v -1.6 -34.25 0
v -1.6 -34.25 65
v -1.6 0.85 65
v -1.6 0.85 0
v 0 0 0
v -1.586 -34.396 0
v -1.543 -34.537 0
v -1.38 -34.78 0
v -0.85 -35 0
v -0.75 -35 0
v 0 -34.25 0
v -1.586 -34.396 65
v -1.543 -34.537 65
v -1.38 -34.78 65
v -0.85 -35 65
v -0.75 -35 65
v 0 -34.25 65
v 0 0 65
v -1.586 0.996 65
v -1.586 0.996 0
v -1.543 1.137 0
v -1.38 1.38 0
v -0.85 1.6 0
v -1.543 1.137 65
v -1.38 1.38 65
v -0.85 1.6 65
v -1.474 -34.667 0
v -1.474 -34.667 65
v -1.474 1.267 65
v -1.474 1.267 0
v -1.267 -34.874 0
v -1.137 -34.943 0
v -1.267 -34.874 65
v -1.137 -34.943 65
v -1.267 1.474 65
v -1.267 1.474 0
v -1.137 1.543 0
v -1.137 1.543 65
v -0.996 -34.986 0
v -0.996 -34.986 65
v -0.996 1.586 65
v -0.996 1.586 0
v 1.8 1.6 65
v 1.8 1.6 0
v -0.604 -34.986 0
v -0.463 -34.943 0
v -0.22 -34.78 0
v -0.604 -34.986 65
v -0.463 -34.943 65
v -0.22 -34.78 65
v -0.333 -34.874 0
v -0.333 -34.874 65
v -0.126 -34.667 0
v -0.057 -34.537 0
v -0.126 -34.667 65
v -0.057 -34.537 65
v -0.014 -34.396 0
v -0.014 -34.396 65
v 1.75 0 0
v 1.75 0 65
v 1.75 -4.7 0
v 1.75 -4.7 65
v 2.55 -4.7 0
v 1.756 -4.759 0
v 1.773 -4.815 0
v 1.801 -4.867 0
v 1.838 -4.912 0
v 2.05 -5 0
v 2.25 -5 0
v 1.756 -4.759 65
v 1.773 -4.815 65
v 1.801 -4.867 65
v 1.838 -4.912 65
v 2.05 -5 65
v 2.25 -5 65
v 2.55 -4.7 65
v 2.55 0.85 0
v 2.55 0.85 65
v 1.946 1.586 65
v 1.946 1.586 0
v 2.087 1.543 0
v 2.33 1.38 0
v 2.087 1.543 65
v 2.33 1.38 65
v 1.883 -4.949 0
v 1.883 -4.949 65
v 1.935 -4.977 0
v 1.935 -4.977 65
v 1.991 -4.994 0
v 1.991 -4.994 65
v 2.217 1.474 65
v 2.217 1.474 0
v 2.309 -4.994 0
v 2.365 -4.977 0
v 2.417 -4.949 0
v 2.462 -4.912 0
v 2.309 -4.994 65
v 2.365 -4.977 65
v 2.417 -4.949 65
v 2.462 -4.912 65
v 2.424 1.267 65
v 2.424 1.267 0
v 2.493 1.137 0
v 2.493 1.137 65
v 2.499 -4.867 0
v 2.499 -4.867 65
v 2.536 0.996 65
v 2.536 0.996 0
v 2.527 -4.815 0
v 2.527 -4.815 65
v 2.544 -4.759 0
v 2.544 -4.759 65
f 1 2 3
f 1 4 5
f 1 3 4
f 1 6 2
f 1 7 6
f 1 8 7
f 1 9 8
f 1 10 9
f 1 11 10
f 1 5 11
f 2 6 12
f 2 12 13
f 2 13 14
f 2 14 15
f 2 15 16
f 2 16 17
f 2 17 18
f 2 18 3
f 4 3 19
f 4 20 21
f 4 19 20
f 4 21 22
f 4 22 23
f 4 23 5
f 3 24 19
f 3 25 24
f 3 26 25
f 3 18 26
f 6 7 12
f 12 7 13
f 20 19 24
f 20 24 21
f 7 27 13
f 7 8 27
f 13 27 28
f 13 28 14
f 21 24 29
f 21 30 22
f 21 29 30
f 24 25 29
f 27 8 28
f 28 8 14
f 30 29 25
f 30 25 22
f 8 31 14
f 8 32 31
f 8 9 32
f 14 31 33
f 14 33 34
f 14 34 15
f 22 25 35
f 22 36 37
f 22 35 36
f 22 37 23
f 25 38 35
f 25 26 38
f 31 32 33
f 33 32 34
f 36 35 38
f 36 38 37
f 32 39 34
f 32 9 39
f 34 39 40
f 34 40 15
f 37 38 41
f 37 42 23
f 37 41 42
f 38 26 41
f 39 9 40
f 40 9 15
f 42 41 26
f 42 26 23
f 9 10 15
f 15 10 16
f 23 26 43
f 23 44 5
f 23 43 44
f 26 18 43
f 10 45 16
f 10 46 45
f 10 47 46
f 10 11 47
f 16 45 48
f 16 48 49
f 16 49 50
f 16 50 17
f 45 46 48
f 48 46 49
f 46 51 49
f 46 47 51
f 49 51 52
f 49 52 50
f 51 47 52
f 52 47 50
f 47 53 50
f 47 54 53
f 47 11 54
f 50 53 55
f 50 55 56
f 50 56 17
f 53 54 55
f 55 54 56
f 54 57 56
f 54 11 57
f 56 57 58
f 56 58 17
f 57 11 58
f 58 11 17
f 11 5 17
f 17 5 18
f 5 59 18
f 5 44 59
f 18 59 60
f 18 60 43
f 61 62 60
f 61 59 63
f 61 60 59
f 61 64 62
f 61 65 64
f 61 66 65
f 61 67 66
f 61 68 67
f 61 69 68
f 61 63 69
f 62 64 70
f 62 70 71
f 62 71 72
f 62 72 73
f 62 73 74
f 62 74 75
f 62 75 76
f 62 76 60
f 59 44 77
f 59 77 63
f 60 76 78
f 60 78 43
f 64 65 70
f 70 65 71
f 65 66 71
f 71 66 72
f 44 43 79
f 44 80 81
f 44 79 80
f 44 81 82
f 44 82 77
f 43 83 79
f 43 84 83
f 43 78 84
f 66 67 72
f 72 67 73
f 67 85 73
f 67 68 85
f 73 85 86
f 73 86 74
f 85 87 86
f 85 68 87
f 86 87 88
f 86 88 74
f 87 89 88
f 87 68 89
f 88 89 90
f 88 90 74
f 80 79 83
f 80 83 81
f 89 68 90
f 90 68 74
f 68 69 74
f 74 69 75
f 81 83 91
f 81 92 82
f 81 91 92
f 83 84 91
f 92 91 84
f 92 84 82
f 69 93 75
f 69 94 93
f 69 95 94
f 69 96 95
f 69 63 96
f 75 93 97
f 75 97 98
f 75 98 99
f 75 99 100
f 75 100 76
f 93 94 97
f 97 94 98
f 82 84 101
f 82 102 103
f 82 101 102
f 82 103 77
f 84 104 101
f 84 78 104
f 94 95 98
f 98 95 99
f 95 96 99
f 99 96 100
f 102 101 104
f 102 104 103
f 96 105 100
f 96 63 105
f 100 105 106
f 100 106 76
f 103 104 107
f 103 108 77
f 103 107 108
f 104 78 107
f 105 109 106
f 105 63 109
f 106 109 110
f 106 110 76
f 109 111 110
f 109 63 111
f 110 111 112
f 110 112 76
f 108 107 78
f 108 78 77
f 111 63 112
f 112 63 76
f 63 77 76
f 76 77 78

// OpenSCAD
$fn = 64;   // finer display resolution

// Door Protective Sleeve
// Stage 2: finished 65 mm sleeve (the default).  The cross-section
// passed a physical fit test as a 15 mm specimen and is unchanged.
//
// This file is the source of truth: opening it shows the current
// approved design.  See HEIGHT for the 15 mm test configuration.

// ============================================================
// LAYOUT
//
// The sleeve is one (X, Y) cross-section extruded straight up Z,
// so it prints with the profile flat on the build plate and every
// wall thickness - in particular the 0.8 mm tongue - is laid down
// in XY, where the printer is most accurate.
//
// Coordinates of the cross-section:
//   X = across the aluminum, from the hand side toward the lock
//   Y = along the aluminum face, toward the edge
//   Z = along the door edge (sleeve height)
//
// The slot's inner wall on the hand side is X = 0, and the slot
// bottom - where the bridge sits on the aluminum edge - is Y = 0.
// Both legs hang down into -Y from the bridge:
//
//          bridge
//    +----------------+          Y = bridge_thickness
//    |  +----------+  |          Y = 0  (slot bottom / edge tip)
//    |  | aluminum |  | tongue
//    |  |  edge    |  |
//    |  |          +--+          Y = -tongue_depth
//    |  |           .
//    |  |           .  lock side (inside the frame channel)
//    |  |
//    +--+                        Y = -grip_length
//    grip face (hand side)
//
// ============================================================


// ============================================================
// DOOR DIMENSIONS (as measured)
//
// Physically measured, single measurement each.  They describe the
// intended geometry but do not fix every surface: the lock's travel,
// the gap's uniformity along the full 65 mm, and the condition of
// the worn edge are NOT measured - see the README.
// ============================================================

edge_thickness      = 1.5;    // aluminum frame edge
channel_depth       = 6.0;    // edge tip to bottom of internal channel
lock_clearance      = 1.5;    // channel wall to locking mechanism
grip_surface_length = 35.0;   // hand-gripping surface, from the edge


// ============================================================
// SLEEVE DIMENSIONS (proposed, not yet fit-verified)
// ============================================================

grip_wall        = 1.6;    // grip-face wall thickness
slot_width       = 1.75;   // internal slot around the 1.5 mm edge (1.7 - 1.8 proposed)
tongue_thickness = 0.8;    // retaining tongue wall thickness
tongue_depth     = 5.0;    // tongue insertion depth, from the slot bottom

// The bridge thickness was not specified.  It is matched to the
// grip wall as a starting point; it only sets how far the sleeve
// stands proud of the edge tip.
bridge_thickness = grip_wall;

// The grip leg covers the measured hand surface, measured from the
// slot bottom (which seats on the edge tip) like the surface itself.
grip_length = grip_surface_length;


// ============================================================
// HEIGHT
//
// The default is the finished part.  The 15 mm fit-test specimen
// (printed and passed) is the same cross-section, and is selected
// explicitly when it is needed:
//   openscad -D sleeve_height=prototype_height ...
// ============================================================

prototype_height = 15.0;
finished_height  = 65.0;

sleeve_height = finished_height;


// ============================================================
// EDGE ROUNDING
//
// Only the exposed convex corners of the cross-section are rounded:
// the two outer corners of the bridge, the grip-face tip, and the
// tongue tip.  Each is cut by a fillet cutter that lies entirely
// inside its corner square, so the rounding can only remove
// material from that corner; no wall is thinned and no fitting
// surface moves.
//
// The tongue tip gets its own, smaller radius: it is only 0.8 mm
// thick.  Its rounded corners double as a lead-in when the tongue
// is started into the channel, and the rounded grip tip does the
// same on the hand side.
//
// Deliberately NOT rounded: the two concave slot-bottom corners
// that seat on the aluminum edge, and the top and bottom end faces
// of the extrusion.
// ============================================================

edge_round       = 0.75;   // bridge outer corners and grip tip
tongue_tip_round = 0.3;    // tongue tip, < tongue_thickness / 2
round_fn         = 32;     // arc resolution for the small rounds


// ============================================================
// DERIVED DIMENSIONS
// ============================================================

// Slot play around the aluminum edge, shared between the two sides
slot_play = slot_width - edge_thickness;

// X of the tongue's inner (slot) and outer (lock-side) faces
tongue_x_in  = slot_width;
tongue_x_out = slot_width + tongue_thickness;

// Overall cross-section
outer_width = grip_wall + slot_width + tongue_thickness;
outer_depth = grip_length + bridge_thickness;

// Tongue-to-lock clearance at the two extremes of the slot play:
//   best  - the tongue is pulled against the aluminum's inner face
//   worst - the grip face is against the aluminum's outer face, as
//           it will be once bonded, so all the play lies between
//           the aluminum and the tongue
lock_gap_best  = lock_clearance - tongue_thickness;
lock_gap_worst = lock_clearance - slot_play - tongue_thickness;

// Space left below the tongue tip in the channel
channel_floor_gap = channel_depth - tongue_depth;


// ============================================================
// GUARDS
// ============================================================

assert(slot_width > edge_thickness,
       "slot_width must exceed edge_thickness");
assert(lock_gap_worst > 0,
       "tongue plus slot play does not fit the measured lock clearance");
assert(tongue_depth < channel_depth,
       "tongue_depth must be less than channel_depth");
assert(2 * edge_round <= grip_wall,
       "edge_round too large for grip_wall");
assert(edge_round <= bridge_thickness,
       "edge_round too large for bridge_thickness");
assert(2 * tongue_tip_round <= tongue_thickness,
       "tongue_tip_round too large for tongue_thickness");


// ============================================================
// CROSS-SECTION
// ============================================================

// The sharp U, one simple polygon, counter-clockwise from the
// outer corner of the grip tip.
module sleeve_profile_sharp() {

    polygon([
        // grip tip
        [-grip_wall, -grip_length],
        [0,          -grip_length],

        // up the hand-side slot wall to the slot bottom
        [0, 0],
        [tongue_x_in, 0],

        // down the tongue's inner face, across its tip
        [tongue_x_in,  -tongue_depth],
        [tongue_x_out, -tongue_depth],

        // up the tongue's outer face, back across the bridge
        [tongue_x_out, bridge_thickness],
        [-grip_wall,   bridge_thickness]
    ]);
}


// Material removed to round a convex corner at p by radius r.
// dir gives the corner's outward directions, e.g. [1, 1] for a
// corner whose material lies to -X and -Y of p.  The cutter is the
// corner square less the fillet disc, so it never reaches beyond
// r from the corner along either face.
module corner_cutter(p, dir, r) {

    eps = 0.01;

    translate(p)
        scale(dir)
            difference() {
                translate([-r, -r])
                    square([r + eps, r + eps]);
                translate([-r, -r])
                    circle(r = r, $fn = round_fn);
            }
}


module sleeve_profile() {

    difference() {
        sleeve_profile_sharp();

        // Bridge outer corners
        corner_cutter([-grip_wall,   bridge_thickness], [-1, 1], edge_round);
        corner_cutter([tongue_x_out, bridge_thickness], [ 1, 1], edge_round);

        // Grip-face tip
        corner_cutter([-grip_wall, -grip_length], [-1, -1], edge_round);
        corner_cutter([0,          -grip_length], [ 1, -1], edge_round);

        // Tongue tip
        corner_cutter([tongue_x_in,  -tongue_depth], [-1, -1], tongue_tip_round);
        corner_cutter([tongue_x_out, -tongue_depth], [ 1, -1], tongue_tip_round);
    }
}


// ============================================================
// SLEEVE
// ============================================================

module sleeve() {
    linear_extrude(height = sleeve_height)
        sleeve_profile();
}


// ============================================================
// FIT-CHECK DUMMIES
//
// The aluminum edge seated on the slot bottom with the grip face
// against its outer surface (the bonded position), and the face of
// the locking mechanism lock_clearance beyond the aluminum's inner
// face.  Only the measured 1.5 mm gap is modelled; the lock's real
// shape and travel are unknown.
// ============================================================

module aluminum_dummy() {

    color("silver", 0.6)
        translate([0, -grip_length - 5, 0])
            cube([edge_thickness, grip_length + 5, sleeve_height]);
}


module lock_face_dummy() {

    color("red", 0.4)
        translate([edge_thickness + lock_clearance, -channel_depth, 0])
            cube([2, channel_depth, sleeve_height]);
}


// ============================================================
// DESIGN CHECKS
// ============================================================

echo(str("sleeve section ", outer_width, " wide x ", outer_depth,
         " deep, height ", sleeve_height,
         " (prototype ", prototype_height, ", finished ",
         finished_height, ")"));

echo(str("slot ", slot_width, " around ", edge_thickness,
         " edge = ", slot_play, " play"));

echo(str("tongue ", tongue_thickness, " thick in ", lock_clearance,
         " lock clearance: ", lock_gap_best,
         " to lock if against the aluminum, ", lock_gap_worst,
         " if the grip face is against the aluminum (bonded)"));

echo(str("tongue depth ", tongue_depth, " in ", channel_depth,
         " channel, ", channel_floor_gap, " left below the tip"));

echo(str("grip face covers ", grip_length, " of the ",
         grip_surface_length, " hand surface; stands ", grip_wall,
         " proud of it, bridge ", bridge_thickness,
         " proud of the edge tip"));


// ============================================================
// DEFAULT VIEW
//
// Isometric, framed on whatever is being built, so the GUI shows
// the whole part on every preview and render.  An explicit
// --camera on the command line takes precedence over these.
// ============================================================

$vpr = [55, 0, 35];
$vpt = [(tongue_x_out - grip_wall) / 2,
        (bridge_thickness - grip_length) / 2,
        sleeve_height / 2];
$vpd = 3.0 * norm([outer_width, outer_depth, sleeve_height]);


// ============================================================
// MODEL
//
// src/sleeve-drawing.scad includes this file and sets
// show_model = false, so it can draw its own views instead.
// ============================================================

show_model = true;

if (show_model)
    sleeve();

// aluminum_dummy();
// lock_face_dummy();
